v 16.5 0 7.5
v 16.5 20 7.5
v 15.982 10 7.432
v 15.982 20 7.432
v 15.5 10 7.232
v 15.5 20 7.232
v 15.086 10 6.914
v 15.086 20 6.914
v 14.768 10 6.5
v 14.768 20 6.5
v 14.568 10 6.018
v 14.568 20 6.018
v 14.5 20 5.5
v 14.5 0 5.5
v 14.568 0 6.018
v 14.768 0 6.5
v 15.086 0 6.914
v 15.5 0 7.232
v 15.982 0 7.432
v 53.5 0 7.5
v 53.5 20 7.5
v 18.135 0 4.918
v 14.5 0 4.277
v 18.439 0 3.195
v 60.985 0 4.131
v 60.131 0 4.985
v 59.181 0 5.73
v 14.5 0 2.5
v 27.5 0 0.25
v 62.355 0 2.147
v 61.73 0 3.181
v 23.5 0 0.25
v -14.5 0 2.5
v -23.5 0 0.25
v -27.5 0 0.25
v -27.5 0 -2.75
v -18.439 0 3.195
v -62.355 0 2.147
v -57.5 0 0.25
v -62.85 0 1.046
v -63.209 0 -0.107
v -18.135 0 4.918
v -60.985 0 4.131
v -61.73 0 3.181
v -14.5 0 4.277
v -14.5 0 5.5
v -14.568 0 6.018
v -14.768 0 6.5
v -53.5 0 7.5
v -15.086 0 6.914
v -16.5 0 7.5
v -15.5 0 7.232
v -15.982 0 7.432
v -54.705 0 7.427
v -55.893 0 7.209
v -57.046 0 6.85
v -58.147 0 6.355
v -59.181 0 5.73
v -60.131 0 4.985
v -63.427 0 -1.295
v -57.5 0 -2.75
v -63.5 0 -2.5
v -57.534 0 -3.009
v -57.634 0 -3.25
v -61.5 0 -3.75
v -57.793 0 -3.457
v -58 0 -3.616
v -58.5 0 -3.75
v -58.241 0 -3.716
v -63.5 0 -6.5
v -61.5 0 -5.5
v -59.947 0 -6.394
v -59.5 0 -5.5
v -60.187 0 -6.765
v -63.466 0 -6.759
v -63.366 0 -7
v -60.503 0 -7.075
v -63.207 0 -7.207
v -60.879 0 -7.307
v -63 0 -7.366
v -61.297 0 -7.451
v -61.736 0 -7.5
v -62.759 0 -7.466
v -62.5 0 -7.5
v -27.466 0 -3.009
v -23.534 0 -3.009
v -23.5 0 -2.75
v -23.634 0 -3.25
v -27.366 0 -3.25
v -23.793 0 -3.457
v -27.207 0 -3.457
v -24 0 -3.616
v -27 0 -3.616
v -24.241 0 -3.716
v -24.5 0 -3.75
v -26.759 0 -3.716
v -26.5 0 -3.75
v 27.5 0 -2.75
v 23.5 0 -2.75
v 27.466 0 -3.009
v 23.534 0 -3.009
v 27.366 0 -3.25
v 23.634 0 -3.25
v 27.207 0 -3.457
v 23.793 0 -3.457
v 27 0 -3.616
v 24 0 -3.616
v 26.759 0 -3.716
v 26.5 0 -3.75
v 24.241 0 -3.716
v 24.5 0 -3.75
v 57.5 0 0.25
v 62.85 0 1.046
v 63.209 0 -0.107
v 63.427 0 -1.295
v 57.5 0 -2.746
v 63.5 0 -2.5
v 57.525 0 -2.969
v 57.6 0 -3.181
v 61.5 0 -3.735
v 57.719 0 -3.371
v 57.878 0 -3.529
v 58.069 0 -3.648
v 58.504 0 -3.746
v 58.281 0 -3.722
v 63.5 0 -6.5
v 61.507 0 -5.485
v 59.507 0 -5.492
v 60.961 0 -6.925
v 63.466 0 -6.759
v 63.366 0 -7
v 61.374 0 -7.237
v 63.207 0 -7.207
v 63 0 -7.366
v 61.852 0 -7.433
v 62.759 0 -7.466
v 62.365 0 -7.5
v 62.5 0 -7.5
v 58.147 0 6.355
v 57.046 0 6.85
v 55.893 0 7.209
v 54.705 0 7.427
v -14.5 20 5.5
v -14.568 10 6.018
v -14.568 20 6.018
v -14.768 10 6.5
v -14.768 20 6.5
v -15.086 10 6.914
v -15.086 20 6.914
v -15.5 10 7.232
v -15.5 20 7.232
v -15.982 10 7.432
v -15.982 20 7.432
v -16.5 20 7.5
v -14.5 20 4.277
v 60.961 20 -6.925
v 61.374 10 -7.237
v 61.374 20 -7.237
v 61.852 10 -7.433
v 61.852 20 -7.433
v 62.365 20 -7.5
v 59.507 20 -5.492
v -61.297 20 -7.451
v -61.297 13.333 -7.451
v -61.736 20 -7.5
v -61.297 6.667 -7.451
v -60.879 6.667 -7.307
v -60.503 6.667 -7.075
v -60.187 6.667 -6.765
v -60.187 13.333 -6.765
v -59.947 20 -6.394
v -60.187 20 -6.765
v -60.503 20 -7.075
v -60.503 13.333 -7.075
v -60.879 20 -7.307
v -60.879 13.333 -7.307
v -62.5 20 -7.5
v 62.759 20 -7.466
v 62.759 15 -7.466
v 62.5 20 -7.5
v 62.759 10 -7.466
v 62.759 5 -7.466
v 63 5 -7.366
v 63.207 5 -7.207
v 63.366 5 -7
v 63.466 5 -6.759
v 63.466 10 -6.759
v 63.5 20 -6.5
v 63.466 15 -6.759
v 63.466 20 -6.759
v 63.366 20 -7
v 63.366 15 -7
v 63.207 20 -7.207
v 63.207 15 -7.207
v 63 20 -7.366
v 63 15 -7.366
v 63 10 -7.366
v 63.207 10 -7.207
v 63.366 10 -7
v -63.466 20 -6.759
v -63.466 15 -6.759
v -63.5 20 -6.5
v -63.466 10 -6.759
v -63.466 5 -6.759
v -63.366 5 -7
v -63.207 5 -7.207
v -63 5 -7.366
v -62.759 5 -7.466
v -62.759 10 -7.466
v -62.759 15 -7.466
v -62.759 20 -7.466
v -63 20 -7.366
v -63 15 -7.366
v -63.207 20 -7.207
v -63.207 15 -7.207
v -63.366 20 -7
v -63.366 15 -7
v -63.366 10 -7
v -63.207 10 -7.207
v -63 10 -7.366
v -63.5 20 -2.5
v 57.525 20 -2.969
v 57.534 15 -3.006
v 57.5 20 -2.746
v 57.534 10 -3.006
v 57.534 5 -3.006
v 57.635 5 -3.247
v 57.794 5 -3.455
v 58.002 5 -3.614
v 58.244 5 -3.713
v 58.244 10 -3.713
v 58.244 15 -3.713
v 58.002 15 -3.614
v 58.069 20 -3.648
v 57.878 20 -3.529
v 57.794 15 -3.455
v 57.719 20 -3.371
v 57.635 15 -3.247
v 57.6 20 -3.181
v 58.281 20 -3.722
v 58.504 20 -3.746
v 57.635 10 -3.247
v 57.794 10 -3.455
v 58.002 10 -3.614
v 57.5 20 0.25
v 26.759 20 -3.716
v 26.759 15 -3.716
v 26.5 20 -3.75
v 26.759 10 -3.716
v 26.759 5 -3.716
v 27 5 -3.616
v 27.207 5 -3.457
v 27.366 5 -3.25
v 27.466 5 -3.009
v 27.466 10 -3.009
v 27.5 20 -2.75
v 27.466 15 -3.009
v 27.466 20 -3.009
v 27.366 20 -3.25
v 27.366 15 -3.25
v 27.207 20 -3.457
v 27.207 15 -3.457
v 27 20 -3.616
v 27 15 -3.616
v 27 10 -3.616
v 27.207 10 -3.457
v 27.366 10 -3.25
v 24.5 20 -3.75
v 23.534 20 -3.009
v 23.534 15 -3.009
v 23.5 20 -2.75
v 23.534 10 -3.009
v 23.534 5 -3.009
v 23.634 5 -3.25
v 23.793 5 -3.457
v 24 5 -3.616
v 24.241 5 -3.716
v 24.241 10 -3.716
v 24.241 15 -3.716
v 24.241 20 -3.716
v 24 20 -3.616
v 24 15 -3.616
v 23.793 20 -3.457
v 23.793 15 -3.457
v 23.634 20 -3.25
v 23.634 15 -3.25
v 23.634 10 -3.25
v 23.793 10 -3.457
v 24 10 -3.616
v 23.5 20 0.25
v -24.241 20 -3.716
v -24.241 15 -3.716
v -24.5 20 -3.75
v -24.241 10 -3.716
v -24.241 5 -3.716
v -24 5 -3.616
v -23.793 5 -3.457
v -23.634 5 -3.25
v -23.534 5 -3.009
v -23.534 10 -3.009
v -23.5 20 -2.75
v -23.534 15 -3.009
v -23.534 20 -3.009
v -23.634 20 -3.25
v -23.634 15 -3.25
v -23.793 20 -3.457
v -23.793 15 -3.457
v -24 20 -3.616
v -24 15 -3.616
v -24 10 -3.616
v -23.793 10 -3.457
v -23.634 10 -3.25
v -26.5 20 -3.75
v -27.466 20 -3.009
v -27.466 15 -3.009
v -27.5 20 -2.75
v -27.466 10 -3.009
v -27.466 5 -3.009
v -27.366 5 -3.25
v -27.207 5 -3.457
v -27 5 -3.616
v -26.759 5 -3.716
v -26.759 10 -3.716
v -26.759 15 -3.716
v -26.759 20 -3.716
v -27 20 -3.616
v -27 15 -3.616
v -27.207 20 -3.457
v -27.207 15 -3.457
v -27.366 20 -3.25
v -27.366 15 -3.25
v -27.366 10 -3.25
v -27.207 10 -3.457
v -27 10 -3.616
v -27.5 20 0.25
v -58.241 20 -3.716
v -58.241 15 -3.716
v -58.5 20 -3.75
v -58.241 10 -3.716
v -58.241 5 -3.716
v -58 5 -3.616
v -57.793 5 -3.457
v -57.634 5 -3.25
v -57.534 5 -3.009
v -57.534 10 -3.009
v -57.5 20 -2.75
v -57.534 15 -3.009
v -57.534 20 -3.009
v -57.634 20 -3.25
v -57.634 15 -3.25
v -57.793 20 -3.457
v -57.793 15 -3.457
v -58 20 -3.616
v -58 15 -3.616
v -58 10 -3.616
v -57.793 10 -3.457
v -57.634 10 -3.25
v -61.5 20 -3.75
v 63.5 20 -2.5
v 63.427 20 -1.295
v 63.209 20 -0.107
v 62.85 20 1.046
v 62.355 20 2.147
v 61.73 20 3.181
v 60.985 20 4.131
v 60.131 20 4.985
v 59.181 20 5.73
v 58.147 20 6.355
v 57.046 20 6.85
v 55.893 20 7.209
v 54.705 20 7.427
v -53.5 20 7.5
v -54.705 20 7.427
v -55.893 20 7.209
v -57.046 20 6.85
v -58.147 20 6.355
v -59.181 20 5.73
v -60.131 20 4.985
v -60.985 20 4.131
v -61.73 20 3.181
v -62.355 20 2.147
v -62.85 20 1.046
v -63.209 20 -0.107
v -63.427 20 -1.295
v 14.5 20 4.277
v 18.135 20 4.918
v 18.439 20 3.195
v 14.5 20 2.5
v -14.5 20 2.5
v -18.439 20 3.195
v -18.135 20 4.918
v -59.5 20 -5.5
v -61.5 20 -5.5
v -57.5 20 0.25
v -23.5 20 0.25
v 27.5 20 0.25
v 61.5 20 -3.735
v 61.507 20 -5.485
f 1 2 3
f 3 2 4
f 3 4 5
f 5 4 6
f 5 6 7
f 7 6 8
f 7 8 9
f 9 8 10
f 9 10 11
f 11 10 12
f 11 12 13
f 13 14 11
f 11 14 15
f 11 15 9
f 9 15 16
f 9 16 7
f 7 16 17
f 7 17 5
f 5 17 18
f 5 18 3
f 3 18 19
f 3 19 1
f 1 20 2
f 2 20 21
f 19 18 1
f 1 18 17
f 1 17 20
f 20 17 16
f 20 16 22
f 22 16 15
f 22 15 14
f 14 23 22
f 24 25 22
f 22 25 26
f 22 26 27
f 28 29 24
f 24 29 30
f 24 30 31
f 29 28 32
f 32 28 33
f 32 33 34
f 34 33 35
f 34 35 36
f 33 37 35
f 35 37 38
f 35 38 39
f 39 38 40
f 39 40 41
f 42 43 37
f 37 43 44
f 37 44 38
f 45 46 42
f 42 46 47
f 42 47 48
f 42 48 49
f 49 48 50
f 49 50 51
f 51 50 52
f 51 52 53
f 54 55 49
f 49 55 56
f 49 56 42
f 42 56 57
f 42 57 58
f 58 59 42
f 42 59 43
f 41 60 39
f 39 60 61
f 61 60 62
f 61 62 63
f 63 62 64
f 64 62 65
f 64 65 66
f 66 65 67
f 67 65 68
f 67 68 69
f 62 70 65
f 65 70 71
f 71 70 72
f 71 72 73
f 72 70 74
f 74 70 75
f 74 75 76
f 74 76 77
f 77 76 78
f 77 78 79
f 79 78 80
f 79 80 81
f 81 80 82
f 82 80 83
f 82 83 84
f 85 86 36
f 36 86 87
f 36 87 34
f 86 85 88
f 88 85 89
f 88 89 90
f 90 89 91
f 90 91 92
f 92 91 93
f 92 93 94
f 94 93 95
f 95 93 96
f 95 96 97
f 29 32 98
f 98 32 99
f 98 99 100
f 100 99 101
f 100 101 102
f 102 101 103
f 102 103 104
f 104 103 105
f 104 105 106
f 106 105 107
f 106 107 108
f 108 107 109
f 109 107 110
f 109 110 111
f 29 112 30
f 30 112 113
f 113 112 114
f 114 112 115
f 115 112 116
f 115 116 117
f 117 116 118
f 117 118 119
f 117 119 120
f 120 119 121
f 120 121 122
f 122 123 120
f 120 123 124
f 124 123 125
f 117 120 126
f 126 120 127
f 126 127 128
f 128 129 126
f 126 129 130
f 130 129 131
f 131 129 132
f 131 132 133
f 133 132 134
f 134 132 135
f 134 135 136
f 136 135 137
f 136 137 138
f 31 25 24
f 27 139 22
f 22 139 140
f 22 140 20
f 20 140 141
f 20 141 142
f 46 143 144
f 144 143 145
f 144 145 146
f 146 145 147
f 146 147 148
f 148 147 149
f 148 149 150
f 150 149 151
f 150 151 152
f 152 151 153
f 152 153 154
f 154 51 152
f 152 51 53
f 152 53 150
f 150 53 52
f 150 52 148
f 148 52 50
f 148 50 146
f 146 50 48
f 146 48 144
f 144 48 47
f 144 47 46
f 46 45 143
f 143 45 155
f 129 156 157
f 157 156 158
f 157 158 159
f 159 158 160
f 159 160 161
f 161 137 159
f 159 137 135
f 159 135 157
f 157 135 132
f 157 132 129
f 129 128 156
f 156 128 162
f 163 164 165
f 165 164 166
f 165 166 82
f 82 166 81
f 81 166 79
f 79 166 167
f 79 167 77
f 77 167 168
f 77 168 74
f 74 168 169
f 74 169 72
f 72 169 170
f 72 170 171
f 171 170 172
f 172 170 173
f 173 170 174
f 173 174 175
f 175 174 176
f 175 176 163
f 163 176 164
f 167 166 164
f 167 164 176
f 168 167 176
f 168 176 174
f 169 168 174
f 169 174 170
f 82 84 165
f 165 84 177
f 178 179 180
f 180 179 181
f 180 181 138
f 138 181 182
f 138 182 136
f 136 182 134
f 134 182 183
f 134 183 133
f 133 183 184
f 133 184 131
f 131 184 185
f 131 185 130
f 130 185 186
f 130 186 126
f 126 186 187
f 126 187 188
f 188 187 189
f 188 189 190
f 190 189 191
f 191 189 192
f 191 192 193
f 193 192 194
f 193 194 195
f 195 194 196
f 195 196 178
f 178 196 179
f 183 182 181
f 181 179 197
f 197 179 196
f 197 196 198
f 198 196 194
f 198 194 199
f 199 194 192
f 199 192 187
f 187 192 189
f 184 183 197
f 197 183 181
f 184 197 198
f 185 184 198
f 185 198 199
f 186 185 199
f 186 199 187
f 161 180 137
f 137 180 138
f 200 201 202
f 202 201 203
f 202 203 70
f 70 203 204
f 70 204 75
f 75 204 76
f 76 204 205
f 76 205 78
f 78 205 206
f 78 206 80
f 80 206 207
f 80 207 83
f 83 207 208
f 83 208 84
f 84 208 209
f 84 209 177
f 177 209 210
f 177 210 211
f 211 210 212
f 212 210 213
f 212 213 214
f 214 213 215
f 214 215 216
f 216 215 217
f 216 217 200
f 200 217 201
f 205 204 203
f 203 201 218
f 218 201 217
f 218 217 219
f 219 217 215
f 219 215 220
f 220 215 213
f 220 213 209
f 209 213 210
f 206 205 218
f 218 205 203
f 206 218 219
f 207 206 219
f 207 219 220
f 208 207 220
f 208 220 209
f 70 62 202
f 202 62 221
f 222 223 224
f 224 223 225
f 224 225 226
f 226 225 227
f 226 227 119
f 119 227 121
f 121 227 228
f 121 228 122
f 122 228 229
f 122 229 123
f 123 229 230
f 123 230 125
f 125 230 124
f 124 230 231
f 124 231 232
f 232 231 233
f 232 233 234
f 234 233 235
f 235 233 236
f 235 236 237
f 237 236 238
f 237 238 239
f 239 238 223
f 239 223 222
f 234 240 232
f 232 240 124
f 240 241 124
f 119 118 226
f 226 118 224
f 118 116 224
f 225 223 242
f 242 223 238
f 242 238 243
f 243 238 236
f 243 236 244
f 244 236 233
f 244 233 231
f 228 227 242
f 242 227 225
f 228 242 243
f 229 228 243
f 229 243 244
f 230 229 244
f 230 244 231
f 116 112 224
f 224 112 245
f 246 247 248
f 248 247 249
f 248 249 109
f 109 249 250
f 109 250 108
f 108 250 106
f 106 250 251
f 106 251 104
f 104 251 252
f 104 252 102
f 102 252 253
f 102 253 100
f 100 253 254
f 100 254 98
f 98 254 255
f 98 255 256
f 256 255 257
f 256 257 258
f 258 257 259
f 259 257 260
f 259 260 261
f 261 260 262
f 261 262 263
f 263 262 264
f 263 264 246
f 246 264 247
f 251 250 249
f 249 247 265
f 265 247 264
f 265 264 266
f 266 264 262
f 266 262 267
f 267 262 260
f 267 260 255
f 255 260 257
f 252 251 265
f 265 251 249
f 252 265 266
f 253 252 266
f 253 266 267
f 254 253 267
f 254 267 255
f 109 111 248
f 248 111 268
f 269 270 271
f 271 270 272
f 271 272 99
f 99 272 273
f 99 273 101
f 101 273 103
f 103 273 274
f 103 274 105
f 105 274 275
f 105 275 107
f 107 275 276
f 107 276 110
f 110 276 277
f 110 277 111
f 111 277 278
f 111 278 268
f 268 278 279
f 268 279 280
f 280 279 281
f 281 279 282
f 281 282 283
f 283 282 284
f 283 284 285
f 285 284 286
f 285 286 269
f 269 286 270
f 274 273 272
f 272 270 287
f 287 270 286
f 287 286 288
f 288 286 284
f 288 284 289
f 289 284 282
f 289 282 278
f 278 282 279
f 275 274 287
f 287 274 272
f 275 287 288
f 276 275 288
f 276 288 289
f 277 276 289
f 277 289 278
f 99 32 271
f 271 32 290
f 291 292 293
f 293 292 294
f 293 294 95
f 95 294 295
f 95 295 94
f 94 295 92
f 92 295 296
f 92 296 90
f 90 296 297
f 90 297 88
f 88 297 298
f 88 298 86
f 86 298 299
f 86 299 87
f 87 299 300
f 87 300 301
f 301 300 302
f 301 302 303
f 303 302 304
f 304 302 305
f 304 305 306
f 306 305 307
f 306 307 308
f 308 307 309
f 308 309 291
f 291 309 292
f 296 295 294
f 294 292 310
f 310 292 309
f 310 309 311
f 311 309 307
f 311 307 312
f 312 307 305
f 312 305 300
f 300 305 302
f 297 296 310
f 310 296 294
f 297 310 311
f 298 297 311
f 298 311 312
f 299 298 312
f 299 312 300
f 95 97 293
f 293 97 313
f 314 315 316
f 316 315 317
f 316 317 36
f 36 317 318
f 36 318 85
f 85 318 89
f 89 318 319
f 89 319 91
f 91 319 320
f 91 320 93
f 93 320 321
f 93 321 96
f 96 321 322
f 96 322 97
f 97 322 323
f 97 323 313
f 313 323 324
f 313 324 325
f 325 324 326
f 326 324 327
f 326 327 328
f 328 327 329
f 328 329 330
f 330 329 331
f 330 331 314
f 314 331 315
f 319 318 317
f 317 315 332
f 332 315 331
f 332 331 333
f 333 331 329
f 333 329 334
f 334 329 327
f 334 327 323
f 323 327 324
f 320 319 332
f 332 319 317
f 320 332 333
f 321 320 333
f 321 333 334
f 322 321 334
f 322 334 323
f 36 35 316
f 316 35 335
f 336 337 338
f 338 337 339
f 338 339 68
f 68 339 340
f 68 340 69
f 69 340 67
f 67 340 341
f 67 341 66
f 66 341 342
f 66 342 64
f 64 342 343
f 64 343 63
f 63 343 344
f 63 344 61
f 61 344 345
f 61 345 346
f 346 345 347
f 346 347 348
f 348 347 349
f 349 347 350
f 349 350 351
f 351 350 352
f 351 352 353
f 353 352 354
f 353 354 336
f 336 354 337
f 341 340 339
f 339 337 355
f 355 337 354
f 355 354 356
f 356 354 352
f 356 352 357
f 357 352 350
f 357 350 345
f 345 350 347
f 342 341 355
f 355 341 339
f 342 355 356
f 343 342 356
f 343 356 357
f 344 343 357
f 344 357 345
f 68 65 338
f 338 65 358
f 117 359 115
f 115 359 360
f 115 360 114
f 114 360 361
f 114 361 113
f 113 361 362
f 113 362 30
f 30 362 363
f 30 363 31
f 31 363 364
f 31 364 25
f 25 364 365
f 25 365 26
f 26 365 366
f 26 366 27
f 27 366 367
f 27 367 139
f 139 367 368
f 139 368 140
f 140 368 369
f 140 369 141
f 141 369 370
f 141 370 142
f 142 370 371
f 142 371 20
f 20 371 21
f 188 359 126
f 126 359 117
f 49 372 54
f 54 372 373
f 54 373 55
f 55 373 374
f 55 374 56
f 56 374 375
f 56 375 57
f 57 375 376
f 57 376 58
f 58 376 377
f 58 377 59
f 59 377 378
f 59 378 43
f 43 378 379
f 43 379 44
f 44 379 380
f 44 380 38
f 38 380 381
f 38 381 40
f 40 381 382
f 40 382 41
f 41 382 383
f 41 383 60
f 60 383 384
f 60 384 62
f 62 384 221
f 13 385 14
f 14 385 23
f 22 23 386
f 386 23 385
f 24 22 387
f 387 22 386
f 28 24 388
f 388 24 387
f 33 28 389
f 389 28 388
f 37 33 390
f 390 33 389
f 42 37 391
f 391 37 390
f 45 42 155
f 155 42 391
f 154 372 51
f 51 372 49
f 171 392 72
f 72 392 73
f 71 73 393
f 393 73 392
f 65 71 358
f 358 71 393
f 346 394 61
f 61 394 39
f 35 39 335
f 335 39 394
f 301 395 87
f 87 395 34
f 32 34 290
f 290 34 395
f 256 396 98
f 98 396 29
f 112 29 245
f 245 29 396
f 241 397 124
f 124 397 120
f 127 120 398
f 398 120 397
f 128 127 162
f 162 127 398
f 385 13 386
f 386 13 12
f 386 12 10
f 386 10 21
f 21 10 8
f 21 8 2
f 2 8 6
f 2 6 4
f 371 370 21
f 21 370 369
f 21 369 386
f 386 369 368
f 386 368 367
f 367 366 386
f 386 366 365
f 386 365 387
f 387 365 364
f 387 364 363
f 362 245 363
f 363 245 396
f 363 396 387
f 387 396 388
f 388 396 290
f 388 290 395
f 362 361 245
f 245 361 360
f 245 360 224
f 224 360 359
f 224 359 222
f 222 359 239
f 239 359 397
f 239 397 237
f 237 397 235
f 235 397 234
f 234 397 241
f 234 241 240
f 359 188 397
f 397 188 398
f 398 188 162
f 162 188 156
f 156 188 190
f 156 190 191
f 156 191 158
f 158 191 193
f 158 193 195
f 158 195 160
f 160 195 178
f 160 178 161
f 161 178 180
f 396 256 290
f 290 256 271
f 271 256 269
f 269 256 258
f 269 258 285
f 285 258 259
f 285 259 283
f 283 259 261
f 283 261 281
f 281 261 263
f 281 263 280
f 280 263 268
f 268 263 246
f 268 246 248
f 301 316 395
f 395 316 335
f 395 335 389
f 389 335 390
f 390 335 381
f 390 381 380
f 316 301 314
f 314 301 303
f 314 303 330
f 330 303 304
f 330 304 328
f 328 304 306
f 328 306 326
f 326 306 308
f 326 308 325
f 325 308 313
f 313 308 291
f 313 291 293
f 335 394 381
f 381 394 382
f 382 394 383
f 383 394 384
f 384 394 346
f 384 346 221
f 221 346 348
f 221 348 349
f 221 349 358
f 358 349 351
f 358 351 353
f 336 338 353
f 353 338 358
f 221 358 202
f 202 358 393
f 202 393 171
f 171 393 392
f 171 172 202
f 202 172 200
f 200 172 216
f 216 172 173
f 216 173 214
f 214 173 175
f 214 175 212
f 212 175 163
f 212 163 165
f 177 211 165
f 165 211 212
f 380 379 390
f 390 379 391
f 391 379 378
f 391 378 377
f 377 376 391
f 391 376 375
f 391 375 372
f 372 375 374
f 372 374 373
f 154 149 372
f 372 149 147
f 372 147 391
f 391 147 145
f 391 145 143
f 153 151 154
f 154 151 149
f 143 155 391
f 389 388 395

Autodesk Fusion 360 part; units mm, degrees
sketch "Sketch1" plane through (0, 0, 0) normal (0, 1, 0) x (1, 0, 0)
  line L0 (63.5, 7.5) -> (-63.5, 7.5)
  line L1 (-63.5, 7.5) -> (-63.5, -7.5)
  line L2 (-63.5, -7.5) -> (63.5, -7.5)
  line L3 (63.5, -7.5) -> (63.5, 7.5)
  line L4 (63.5, 7.5) -> (-63.5, -7.5) construction
  line L5 (-63.5, 7.5) -> (63.5, -7.5) construction
  line L6 (0, -7.5) -> (-14.5, -7.5) construction
  line L7 (-14.5, -7.5) -> (14.5, -7.5)
  line L8 (14.5, -7.5) -> (14.5, -2.5)
  line L9 (14.5, -2.5) -> (-14.5, -2.5)
  line L10 (-14.5, -2.5) -> (-14.5, -7.5)
  line L11 (-14.5, -2.5) -> (-18.4392, -3.1946)
  line L12 (-14.5, -2.5) -> (-11.5456, -2.5) construction
  line L13 (-14.5, -2.5) -> (-18.4392, -3.1946)
  line L14 (-18.4392, -3.1946) -> (-18.1353, -4.918)
  line L15 (-18.1353, -4.918) -> (-14.1961, -4.2234)
  line L16 (-14.1961, -4.2234) -> (-14.5, -2.5)
  line L17 (14.5, -2.5) -> (18.4392, -3.1946)
  line L18 (14.5, -2.5) -> (17.5, -2.5) construction
  line L19 (14.5, -2.5) -> (18.4392, -3.1946)
  line L20 (18.4392, -3.1946) -> (18.1353, -4.918)
  line L21 (18.1353, -4.918) -> (14.1961, -4.2234)
  line L22 (14.1961, -4.2234) -> (14.5, -2.5)
  line L23 (-63.5, 7.5) -> (-57.5, 7.5) construction
  line L24 (-57.5, 7.5) -> (-57.5, 5.5)
  line L25 (-57.5, 5.5) -> (-61.5, 5.5)
  line L26 (-61.5, 5.5) -> (-61.5, 3.75)
  line L27 (61.5, 3.7349) -> (61.5066, 5.4848)
  line L28 (61.5066, 5.4848) -> (57.5067, 5.5)
  line L29 (57.5067, 5.5) -> (57.5067, 7.5)
  line L30 (-61.5, 3.75) -> (-57.5, 3.75)
  line L31 (-57.5, 3.75) -> (-57.5, -0.25)
  line L32 (-57.5, -0.25) -> (-27.5, -0.25)
  line L33 (-27.5, -0.25) -> (-27.5, 3.75)
  line L34 (-27.5, 3.75) -> (-23.5, 3.75)
  line L35 (-23.5, 3.75) -> (-23.5, -0.25)
  line L36 (-23.5, -0.25) -> (23.5, -0.25)
  line L37 (23.5, -0.25) -> (23.5, 3.75)
  line L38 (23.5, 3.75) -> (27.5, 3.75)
  line L39 (27.5, 3.75) -> (27.5, -0.25)
  line L40 (27.5, -0.25) -> (57.5, -0.25)
  line L41 (57.5, -0.25) -> (57.5, 3.75)
  line L42 (57.5, 3.75) -> (61.5, 3.7349)
  line L43 (-61.5, 5.5) -> (-59.5, 5.5) construction
  line L44 (-60.5, 7.5) -> (-59.5, 5.5)
  line L45 (61.5066, 5.4848) -> (59.5066, 5.4924) construction
  line L46 (61.5452, 7.5) -> (59.5066, 5.4924)
  dimension "d1" = 127
  dimension "d2" = 15
  dimension "d3" = 14.5
  dimension "d5" = 29
  dimension "d6" = 5
  dimension "d7" = 190
  dimension "d8" = 4
  dimension "d9" = 1.75
  dimension "d10" = 4
  dimension "d11" = 190
  dimension "d12" = 1.75
  dimension "d15" = 6
  dimension "d16" = 2
  dimension "d17" = 4
  dimension "d18" = 1.75
  dimension "d19" = 123
  dimension "d20" = 1.75
  dimension "d21" = 4
  dimension "d22" = 2
  dimension "d23" = 4
  dimension "d24" = 4
  dimension "d25" = 30
  dimension "d26" = 4
  dimension "d27" = 4
  dimension "d28" = 47
  dimension "d29" = 4
  dimension "d30" = 4
  dimension "d31" = 4
  dimension "d32" = 30
  dimension "d33" = 4
  dimension "d38" = 89.783
extrude "Extrude3" add sketch "Sketch1" along normal blind 20 contours L0 L1 L2 L3 L8 L9 L10 L11 L13 L14 L15 L17 L19 L20 L21 L25 L26 L27 L28 L30 L31 L32 L33 L34 L35 L36 L37 L38 L39 L40 L41 L42 L44 L46
fillet "Fillet1" radius 10 2 edges at (-63.5, 10, 7.5) (63.5, 10, 7.5)
fillet "Fillet2" radius 1 6 edges at (-57.5, 10, -3.75) (-27.5, 10, -3.75) (-23.5, 10, -3.75) (23.5, 10, -3.75) (27.5, 10, -3.75) (57.5, 10, -3.75)
fillet "Fillet3" radius 1 2 edges at (-63.5, 10, -7.5) (63.5, 10, -7.5)
fillet "Fillet4" radius 2 2 edges at (-60.5, 10, -7.5) (61.5452, 10, -7.5)
fillet "Fillet5" radius 2 2 edges at (-14.5, 10, 7.5) (14.5, 10, 7.5)
equation "d3 = ( 35 / 2 ) * 1 mm - 3 mm"
